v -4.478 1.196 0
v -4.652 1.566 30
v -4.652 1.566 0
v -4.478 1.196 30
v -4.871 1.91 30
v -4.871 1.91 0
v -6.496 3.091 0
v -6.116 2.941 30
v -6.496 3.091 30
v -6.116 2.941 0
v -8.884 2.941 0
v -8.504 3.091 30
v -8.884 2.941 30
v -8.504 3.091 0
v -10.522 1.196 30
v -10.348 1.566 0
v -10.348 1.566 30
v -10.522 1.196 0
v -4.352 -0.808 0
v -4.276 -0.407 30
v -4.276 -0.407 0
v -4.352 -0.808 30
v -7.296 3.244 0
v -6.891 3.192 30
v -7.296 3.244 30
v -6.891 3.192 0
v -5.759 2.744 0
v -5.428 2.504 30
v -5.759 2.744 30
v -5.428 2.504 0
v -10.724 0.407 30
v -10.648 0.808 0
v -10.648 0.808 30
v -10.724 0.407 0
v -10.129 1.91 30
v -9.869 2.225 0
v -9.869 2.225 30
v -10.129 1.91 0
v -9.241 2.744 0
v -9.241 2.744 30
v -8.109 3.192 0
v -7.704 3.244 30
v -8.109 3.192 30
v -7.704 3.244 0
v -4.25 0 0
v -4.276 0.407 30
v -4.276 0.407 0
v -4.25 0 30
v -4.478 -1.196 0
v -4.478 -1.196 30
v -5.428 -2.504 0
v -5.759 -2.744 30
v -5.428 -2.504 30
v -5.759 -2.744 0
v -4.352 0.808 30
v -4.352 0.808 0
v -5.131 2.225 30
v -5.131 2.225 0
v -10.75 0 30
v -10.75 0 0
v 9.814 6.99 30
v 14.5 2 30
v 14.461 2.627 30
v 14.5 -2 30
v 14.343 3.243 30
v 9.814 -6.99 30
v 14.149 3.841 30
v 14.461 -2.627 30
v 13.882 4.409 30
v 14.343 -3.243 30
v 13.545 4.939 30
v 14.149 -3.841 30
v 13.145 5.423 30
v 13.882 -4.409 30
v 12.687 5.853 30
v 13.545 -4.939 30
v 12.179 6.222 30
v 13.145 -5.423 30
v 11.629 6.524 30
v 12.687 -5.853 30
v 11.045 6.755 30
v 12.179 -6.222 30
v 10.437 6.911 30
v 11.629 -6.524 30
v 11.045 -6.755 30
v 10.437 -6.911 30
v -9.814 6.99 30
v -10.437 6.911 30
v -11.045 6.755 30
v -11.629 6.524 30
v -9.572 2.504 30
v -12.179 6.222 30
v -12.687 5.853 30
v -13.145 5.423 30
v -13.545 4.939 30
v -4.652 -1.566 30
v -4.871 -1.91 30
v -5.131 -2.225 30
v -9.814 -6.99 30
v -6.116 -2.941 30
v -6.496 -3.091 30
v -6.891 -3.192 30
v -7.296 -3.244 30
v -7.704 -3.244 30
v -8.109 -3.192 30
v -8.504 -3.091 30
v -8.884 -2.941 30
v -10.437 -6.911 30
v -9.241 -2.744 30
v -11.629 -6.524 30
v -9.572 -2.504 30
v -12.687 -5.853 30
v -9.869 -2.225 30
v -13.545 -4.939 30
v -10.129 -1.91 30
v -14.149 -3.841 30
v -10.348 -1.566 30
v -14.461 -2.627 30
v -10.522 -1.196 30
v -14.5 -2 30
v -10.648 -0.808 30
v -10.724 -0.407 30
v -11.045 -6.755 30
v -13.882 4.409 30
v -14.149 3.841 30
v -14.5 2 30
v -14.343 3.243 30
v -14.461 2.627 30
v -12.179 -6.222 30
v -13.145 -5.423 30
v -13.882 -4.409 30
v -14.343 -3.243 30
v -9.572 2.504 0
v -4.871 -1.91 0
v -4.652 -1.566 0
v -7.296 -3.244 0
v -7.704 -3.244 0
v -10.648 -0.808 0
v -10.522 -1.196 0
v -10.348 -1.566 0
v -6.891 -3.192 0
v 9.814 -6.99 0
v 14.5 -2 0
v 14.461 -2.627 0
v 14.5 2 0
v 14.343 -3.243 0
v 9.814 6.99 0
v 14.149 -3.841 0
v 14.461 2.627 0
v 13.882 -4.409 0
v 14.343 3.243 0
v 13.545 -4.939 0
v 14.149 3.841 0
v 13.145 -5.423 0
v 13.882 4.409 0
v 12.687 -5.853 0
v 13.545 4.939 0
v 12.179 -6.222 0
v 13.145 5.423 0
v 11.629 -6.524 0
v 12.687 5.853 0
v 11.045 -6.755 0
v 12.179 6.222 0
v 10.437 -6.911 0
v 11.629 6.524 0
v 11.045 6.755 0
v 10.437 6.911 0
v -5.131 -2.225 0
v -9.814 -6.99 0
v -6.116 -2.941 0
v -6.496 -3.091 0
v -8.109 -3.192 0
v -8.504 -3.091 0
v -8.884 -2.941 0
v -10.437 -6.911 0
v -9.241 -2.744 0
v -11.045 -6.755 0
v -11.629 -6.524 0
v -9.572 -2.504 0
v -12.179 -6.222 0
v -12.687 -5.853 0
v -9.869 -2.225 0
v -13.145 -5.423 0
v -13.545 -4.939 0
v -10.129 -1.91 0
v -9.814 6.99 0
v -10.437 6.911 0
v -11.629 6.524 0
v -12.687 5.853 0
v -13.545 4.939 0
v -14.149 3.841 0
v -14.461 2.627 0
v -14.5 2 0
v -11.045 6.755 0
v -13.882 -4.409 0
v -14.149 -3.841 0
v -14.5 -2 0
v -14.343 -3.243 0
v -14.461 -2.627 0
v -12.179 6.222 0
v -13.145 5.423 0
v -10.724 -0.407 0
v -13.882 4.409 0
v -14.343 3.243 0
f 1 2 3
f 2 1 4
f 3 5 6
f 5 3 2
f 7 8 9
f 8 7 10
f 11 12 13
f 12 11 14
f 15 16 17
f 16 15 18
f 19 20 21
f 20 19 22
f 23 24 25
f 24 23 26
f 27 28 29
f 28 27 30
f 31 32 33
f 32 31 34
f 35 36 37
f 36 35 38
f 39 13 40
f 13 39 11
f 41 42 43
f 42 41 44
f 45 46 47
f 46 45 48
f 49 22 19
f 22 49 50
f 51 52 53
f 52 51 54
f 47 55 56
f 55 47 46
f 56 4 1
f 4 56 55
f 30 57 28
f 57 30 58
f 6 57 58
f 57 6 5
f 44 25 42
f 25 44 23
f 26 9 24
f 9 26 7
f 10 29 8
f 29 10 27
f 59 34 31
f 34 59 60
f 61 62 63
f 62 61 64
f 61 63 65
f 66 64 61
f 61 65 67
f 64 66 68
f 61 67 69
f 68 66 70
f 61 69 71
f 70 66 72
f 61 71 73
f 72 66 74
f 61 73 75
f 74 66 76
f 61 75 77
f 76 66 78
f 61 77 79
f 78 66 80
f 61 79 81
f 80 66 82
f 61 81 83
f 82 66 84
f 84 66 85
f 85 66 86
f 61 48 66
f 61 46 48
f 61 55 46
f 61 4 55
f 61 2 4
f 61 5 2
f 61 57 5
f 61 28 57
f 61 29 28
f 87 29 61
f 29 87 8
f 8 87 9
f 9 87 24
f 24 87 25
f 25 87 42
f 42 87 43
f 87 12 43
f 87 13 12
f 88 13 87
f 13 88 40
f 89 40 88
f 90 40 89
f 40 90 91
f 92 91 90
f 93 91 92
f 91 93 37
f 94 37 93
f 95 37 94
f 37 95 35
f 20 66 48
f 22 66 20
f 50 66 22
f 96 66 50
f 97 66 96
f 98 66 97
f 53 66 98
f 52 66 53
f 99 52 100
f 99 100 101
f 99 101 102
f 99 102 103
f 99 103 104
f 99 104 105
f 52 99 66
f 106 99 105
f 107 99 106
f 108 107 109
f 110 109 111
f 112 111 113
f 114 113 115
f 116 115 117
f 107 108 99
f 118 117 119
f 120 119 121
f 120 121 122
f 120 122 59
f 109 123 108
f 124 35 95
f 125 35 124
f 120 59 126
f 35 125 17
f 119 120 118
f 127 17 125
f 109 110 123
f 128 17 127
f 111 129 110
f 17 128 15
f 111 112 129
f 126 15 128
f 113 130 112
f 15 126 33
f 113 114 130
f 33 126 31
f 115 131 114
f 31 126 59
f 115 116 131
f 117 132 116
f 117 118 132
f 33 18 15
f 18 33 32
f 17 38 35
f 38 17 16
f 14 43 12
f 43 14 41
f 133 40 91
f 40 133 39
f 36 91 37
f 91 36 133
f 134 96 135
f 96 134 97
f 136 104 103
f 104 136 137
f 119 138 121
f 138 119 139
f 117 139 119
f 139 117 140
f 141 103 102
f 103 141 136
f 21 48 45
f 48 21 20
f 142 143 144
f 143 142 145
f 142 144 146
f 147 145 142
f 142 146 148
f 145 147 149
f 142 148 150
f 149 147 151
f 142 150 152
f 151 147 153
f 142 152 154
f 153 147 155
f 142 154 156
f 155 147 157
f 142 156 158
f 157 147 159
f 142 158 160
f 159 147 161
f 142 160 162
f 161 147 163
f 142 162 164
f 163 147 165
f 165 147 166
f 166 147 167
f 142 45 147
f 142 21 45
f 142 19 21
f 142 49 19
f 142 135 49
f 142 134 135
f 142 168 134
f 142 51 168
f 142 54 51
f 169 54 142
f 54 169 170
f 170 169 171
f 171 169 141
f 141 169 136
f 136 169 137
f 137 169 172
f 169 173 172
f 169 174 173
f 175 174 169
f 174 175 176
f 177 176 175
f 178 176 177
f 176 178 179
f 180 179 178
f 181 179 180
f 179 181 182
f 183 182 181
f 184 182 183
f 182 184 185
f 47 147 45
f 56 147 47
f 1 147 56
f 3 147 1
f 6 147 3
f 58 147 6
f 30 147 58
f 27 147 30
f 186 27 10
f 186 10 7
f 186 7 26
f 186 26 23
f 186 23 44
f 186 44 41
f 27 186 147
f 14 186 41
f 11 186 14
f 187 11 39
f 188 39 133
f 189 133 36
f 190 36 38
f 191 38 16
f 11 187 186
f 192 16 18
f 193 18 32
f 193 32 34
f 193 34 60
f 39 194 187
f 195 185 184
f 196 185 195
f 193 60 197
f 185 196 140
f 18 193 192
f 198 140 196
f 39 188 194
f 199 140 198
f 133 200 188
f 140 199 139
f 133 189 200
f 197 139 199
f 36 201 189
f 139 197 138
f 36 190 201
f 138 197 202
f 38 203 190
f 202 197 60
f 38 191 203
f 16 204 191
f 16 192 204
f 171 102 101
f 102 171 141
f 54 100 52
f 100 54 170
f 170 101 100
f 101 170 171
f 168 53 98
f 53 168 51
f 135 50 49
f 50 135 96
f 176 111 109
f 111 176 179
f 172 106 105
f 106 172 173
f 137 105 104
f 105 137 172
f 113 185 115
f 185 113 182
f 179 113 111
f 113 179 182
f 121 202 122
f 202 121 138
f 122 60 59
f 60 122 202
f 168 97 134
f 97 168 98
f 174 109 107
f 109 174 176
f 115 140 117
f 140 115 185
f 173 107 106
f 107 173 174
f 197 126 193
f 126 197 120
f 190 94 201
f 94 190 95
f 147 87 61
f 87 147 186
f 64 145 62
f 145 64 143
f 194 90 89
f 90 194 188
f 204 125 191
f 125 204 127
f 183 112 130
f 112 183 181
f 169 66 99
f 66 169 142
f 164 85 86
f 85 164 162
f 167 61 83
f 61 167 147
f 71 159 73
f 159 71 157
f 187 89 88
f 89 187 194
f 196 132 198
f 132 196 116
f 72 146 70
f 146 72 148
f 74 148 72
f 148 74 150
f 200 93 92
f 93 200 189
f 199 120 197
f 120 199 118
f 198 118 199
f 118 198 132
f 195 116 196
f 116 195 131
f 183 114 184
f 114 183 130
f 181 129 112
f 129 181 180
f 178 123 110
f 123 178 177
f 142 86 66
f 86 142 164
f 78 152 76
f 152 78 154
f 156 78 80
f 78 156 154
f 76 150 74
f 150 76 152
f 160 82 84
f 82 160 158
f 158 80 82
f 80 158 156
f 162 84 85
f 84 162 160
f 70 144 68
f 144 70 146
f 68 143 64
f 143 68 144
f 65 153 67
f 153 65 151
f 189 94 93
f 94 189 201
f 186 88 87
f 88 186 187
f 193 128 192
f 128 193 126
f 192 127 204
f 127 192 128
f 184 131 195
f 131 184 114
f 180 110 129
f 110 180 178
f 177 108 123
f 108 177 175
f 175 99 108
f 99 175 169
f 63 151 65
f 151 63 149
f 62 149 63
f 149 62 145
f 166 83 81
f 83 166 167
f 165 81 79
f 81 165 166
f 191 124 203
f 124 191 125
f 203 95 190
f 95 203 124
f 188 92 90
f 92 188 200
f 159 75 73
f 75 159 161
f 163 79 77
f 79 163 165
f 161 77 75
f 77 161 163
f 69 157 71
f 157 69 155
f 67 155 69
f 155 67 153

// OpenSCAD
$fn = 50;


difference() {
	union() {
		hull() {
			translate(v = [-9.5000000000, 2.0000000000, 0]) {
				cylinder(h = 30, r = 5);
			}
			translate(v = [9.5000000000, 2.0000000000, 0]) {
				cylinder(h = 30, r = 5);
			}
			translate(v = [-9.5000000000, -2.0000000000, 0]) {
				cylinder(h = 30, r = 5);
			}
			translate(v = [9.5000000000, -2.0000000000, 0]) {
				cylinder(h = 30, r = 5);
			}
		}
	}
	union() {
		translate(v = [-7.5000000000, 0.0000000000, 0]) {
			cylinder(h = 30, r = 3.2500000000);
		}
		translate(v = [-7.5000000000, 0.0000000000, 0]) {
			cylinder(h = 30, r = 1.8000000000);
		}
		translate(v = [-7.5000000000, 0.0000000000, 0]) {
			cylinder(h = 30, r = 1.8000000000);
		}
		translate(v = [-7.5000000000, 0.0000000000, 0]) {
			cylinder(h = 30, r = 1.8000000000);
		}
	}
}
